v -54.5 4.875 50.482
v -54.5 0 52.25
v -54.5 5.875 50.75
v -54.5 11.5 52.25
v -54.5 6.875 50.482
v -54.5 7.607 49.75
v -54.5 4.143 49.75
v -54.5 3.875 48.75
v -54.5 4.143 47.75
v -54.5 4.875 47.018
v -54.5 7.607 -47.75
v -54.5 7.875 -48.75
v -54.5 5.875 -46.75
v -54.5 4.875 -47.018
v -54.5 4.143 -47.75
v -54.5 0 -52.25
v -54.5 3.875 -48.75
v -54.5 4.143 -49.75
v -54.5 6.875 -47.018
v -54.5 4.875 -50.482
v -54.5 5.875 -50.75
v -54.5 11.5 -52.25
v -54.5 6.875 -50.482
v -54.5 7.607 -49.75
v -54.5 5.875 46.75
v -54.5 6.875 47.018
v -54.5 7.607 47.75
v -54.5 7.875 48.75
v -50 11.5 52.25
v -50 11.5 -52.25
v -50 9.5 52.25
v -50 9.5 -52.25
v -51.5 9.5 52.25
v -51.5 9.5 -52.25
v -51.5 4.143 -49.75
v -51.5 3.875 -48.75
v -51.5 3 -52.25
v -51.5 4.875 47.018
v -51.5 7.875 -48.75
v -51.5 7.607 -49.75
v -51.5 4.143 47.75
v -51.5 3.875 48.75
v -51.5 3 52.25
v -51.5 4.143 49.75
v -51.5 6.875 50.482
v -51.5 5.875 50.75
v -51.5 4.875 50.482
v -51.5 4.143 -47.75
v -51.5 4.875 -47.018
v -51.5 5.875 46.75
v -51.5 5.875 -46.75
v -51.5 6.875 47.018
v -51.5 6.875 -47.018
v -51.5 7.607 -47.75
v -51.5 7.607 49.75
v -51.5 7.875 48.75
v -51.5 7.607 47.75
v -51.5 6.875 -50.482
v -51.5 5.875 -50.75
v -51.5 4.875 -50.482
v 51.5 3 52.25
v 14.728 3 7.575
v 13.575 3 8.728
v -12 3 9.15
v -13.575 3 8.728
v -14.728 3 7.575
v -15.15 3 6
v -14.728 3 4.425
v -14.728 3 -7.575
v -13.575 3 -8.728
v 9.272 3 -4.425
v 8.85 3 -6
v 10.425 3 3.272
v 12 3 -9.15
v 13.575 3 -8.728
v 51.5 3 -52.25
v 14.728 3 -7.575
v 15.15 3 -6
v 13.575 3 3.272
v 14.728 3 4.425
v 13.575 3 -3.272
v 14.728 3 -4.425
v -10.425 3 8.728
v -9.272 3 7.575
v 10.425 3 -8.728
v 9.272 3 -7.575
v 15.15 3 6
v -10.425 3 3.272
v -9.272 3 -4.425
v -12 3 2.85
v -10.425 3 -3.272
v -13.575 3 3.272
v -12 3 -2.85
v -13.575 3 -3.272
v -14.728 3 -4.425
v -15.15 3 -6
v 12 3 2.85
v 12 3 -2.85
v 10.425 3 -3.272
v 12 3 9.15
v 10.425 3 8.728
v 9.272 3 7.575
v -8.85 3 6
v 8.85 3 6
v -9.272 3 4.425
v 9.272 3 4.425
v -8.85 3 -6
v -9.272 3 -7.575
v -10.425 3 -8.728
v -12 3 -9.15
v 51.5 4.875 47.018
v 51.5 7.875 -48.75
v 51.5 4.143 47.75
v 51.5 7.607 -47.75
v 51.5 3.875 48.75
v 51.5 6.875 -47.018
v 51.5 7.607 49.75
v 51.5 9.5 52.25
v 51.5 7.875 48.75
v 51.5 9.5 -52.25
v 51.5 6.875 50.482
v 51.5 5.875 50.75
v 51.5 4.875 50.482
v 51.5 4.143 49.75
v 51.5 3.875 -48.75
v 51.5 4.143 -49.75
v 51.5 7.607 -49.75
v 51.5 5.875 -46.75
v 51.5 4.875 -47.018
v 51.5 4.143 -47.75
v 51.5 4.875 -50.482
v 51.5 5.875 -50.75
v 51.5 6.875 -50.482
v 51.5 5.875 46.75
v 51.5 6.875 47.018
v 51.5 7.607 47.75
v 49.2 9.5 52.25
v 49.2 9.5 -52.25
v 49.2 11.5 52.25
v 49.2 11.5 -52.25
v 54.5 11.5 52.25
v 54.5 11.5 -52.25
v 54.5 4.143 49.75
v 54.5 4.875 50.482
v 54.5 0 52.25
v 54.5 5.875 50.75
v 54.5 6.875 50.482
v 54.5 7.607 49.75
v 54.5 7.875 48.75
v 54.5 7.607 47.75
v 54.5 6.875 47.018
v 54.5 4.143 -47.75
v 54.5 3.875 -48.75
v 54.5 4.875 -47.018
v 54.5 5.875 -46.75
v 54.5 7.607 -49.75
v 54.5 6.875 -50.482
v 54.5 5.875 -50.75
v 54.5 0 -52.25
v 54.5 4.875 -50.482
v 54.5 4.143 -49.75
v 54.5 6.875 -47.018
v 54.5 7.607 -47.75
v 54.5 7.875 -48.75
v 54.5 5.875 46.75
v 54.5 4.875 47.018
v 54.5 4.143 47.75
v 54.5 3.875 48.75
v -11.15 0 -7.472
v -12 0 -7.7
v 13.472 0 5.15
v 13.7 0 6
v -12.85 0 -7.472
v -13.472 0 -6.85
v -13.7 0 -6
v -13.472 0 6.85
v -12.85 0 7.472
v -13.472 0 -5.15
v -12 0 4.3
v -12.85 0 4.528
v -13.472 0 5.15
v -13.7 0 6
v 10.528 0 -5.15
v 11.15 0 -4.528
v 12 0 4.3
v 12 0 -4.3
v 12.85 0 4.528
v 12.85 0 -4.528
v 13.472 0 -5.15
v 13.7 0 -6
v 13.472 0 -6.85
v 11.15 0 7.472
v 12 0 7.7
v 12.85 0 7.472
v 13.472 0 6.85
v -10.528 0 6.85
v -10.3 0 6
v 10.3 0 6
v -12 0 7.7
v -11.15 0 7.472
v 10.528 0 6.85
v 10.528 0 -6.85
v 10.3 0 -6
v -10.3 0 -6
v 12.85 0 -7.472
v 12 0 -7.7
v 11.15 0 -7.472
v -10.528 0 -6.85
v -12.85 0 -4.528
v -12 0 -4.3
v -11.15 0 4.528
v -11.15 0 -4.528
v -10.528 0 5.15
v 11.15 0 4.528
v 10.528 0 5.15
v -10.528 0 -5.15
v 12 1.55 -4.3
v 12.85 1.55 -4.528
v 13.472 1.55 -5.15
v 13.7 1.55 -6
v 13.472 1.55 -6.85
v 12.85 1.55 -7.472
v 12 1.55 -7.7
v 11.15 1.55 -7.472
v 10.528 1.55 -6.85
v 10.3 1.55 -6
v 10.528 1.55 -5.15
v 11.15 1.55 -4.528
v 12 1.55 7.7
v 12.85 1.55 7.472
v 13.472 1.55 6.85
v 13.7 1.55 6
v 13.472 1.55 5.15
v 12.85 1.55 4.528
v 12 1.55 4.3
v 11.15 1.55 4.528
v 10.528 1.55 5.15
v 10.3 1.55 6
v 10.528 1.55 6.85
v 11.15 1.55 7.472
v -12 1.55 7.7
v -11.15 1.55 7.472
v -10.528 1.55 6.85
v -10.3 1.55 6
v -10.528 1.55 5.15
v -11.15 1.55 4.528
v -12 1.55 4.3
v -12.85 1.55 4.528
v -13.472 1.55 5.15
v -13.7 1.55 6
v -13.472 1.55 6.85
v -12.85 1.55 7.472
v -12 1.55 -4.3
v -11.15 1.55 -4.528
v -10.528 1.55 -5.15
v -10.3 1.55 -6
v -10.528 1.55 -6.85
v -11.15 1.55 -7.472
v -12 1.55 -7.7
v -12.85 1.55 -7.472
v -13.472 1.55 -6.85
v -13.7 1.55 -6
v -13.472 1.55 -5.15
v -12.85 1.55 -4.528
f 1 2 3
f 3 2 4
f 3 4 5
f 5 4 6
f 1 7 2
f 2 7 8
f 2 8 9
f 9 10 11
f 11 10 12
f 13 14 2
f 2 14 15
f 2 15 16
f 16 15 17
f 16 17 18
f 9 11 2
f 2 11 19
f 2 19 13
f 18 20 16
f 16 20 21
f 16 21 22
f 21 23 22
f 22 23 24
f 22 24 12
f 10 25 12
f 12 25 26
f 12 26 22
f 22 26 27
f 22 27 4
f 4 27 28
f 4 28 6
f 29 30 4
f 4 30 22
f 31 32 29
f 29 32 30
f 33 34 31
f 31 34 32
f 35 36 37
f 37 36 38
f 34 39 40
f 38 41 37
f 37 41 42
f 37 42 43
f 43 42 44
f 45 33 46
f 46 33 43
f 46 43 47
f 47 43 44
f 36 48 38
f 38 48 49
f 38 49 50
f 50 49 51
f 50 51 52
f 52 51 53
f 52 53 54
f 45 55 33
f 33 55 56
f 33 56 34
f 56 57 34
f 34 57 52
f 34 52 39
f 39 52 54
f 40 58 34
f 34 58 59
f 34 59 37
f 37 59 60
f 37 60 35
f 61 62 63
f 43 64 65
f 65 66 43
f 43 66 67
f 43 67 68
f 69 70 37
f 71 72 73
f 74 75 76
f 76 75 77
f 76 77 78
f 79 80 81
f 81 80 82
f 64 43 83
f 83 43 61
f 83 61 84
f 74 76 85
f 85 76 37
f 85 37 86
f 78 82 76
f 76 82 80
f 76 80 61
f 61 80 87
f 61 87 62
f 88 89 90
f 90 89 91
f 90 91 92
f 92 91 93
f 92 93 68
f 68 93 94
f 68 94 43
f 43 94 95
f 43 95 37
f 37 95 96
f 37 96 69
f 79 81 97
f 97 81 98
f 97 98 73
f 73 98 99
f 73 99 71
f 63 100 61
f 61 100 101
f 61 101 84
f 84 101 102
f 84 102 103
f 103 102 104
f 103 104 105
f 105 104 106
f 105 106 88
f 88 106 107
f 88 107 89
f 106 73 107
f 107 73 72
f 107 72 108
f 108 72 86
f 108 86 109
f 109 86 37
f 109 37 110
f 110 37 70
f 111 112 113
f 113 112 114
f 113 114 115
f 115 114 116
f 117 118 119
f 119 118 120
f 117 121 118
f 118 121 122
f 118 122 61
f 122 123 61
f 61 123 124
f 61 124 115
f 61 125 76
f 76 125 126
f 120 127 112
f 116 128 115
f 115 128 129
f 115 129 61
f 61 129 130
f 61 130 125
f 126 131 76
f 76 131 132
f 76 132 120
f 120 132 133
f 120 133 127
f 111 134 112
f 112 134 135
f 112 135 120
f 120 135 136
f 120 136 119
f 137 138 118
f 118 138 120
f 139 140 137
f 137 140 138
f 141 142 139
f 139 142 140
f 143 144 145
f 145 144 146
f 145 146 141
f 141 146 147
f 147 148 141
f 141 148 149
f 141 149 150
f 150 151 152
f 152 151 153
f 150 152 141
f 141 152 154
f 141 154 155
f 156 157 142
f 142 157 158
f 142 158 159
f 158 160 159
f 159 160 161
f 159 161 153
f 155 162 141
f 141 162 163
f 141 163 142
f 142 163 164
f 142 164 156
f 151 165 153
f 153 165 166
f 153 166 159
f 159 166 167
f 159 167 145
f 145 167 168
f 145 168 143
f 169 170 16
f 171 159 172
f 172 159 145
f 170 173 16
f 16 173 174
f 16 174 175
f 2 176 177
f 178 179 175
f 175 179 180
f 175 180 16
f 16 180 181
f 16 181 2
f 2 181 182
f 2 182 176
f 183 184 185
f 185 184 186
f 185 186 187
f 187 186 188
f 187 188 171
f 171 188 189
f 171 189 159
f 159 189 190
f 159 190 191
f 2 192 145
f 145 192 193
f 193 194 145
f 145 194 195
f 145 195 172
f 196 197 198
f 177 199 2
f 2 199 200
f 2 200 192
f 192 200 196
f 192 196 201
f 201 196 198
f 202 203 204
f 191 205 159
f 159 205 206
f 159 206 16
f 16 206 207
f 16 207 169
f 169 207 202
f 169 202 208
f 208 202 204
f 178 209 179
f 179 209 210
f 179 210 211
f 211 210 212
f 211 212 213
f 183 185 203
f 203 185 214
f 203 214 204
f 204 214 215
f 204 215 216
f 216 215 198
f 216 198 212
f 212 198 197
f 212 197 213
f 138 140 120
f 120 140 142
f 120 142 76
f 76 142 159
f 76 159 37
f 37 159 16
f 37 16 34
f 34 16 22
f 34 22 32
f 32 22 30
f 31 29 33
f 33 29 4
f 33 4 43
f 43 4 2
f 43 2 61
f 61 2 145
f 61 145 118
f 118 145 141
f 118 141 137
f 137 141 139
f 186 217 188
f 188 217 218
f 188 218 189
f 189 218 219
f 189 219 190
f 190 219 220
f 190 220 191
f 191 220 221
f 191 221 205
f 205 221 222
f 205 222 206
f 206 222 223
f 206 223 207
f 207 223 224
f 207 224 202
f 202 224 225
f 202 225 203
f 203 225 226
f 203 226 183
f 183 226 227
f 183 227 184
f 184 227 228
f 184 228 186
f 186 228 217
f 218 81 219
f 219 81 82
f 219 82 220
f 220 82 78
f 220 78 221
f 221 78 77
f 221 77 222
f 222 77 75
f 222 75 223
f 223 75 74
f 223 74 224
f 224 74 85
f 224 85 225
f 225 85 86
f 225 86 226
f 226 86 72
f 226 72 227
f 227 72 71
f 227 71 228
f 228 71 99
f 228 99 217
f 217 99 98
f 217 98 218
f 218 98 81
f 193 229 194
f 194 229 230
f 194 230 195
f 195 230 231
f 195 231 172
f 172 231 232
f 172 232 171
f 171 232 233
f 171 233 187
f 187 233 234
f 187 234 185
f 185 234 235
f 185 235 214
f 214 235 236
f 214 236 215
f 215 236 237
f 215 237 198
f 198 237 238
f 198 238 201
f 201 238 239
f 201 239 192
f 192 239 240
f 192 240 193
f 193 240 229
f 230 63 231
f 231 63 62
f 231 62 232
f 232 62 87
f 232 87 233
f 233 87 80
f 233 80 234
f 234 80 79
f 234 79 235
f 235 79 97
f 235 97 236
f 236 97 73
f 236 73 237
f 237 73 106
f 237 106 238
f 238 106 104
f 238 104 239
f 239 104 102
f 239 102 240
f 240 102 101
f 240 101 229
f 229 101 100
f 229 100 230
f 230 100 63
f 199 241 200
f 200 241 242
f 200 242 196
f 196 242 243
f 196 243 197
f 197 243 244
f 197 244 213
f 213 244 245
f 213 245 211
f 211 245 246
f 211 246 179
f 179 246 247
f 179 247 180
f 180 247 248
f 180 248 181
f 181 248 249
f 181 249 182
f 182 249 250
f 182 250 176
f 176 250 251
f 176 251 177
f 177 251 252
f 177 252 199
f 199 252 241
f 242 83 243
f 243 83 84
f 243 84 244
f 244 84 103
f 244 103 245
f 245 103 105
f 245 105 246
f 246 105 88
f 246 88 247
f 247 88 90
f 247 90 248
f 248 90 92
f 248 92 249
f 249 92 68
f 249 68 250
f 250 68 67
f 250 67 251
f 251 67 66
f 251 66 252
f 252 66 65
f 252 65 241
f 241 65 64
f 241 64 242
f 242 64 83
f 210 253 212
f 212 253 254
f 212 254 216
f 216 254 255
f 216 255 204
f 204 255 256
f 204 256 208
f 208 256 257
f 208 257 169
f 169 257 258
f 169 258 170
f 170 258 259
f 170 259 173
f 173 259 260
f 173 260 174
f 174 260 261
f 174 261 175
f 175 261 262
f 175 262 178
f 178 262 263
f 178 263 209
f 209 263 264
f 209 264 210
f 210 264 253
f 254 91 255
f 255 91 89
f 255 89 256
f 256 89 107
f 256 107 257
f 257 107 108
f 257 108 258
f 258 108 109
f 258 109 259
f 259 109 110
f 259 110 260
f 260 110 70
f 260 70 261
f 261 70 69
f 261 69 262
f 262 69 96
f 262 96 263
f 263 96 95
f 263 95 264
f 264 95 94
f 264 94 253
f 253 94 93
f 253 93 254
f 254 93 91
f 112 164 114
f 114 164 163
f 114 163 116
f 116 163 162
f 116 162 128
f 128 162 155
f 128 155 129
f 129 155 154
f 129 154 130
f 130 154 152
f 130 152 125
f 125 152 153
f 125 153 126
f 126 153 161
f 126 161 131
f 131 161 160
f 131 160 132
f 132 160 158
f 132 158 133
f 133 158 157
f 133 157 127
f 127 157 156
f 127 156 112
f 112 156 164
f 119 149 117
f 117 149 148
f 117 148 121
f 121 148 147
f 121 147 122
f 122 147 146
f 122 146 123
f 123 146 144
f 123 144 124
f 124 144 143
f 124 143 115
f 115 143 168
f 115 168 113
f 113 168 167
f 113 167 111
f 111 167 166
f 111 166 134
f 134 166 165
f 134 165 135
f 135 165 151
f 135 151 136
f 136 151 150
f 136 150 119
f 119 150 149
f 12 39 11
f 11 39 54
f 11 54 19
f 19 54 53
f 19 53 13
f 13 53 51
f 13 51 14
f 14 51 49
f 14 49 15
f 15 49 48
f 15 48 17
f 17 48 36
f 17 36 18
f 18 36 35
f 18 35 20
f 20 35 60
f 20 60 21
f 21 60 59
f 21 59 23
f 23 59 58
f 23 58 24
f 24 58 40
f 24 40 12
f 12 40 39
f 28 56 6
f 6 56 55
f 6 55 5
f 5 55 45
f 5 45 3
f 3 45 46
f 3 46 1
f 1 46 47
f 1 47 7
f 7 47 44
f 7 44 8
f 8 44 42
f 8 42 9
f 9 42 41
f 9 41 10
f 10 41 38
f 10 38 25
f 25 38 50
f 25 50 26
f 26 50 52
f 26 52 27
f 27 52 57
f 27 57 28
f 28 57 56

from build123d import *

# Parameters (mm, degrees)
BOSS_EXTRUDE1_DEPTH                            = 52.25
BOSS_EXTRUDE1_DEPTH_BACK                       = 52.25
CSK_FOR_M3_FLAT_HEAD_MACHINE_SCREW1_AT_2_COUNT = 2
CSK_FOR_M3_FLAT_HEAD_MACHINE_SCREW1_AT_2_PITCH = 12
CSK_FOR_M3_FLAT_HEAD_MACHINE_SCREW1_AT_3_COUNT = 2
CSK_FOR_M3_FLAT_HEAD_MACHINE_SCREW1_AT_3_PITCH = 26.83281573
CSK_FOR_M3_FLAT_HEAD_MACHINE_SCREW1_AT_4_COUNT = 2
CSK_FOR_M3_FLAT_HEAD_MACHINE_SCREW1_AT_4_PITCH = 24
SKETCH5_R                                      = 2
CUT_EXTRUDE1_DEPTH                             = 122.422042892


with BuildPart() as part:
    # Sketch1 → Boss-Extrude1 (new, two sides: drawn at the far end of the back side and taken through both)
    with BuildSketch(Plane.XY.offset(-BOSS_EXTRUDE1_DEPTH_BACK)):
        Polygon((-50, 11.5), (-50, 9.5), (-51.5, 9.5), (-51.5, 3), (51.5, 3), (51.5, 9.5), (49.2, 9.5), (49.2, 11.5), (54.5, 11.5), (54.5, 0), (-54.5, 0), (-54.5, 11.5), align=None)
    extrude(amount=BOSS_EXTRUDE1_DEPTH + BOSS_EXTRUDE1_DEPTH_BACK)

    # Sketch4 → CSK for M3 Flat Head Machine Screw1 (revolve, cut)
    with BuildSketch(Plane(origin=(-12, 3, -6), x_dir=(0, 0, 1), z_dir=(1, 0, 0))):
        Polygon((0, 0), (0, 3), (1.7, 3), (1.7, 1.45), (3.15, 0), align=None)
    csk_for_m3_flat_head_machine_screw1 = revolve(axis=Axis((-12, 9.35, -6), (0, -1, 0)), mode=Mode.SUBTRACT)

    # CSK for M3 Flat Head Machine Screw1 at 2: CSK for M3 Flat Head Machine Screw1 ×2
    with Locations(*[(0, 0, i * CSK_FOR_M3_FLAT_HEAD_MACHINE_SCREW1_AT_2_PITCH) for i in range(1, CSK_FOR_M3_FLAT_HEAD_MACHINE_SCREW1_AT_2_COUNT)]):
        add(csk_for_m3_flat_head_machine_screw1, mode=Mode.SUBTRACT)

    # CSK for M3 Flat Head Machine Screw1 at 3: CSK for M3 Flat Head Machine Screw1 ×2
    with Locations(*[Vector(0.894427190999916, 0, 0.4472135954999579) * (i * CSK_FOR_M3_FLAT_HEAD_MACHINE_SCREW1_AT_3_PITCH) for i in range(1, CSK_FOR_M3_FLAT_HEAD_MACHINE_SCREW1_AT_3_COUNT)]):
        add(csk_for_m3_flat_head_machine_screw1, mode=Mode.SUBTRACT)

    # CSK for M3 Flat Head Machine Screw1 at 4: CSK for M3 Flat Head Machine Screw1 ×2
    with Locations(*[(i * CSK_FOR_M3_FLAT_HEAD_MACHINE_SCREW1_AT_4_PITCH, 0, 0) for i in range(1, CSK_FOR_M3_FLAT_HEAD_MACHINE_SCREW1_AT_4_COUNT)]):
        add(csk_for_m3_flat_head_machine_screw1, mode=Mode.SUBTRACT)

    # Sketch5 → Cut-Extrude1 (cut, through all)
    with BuildSketch(Plane(origin=(54.5, 0, 0), x_dir=(0, 0, -1), z_dir=(1, 0, 0))):
        with Locations((-48.75, 5.875)):
            Circle(SKETCH5_R)
        with Locations((48.75, 5.875)):
            Circle(SKETCH5_R)
    extrude(amount=-CUT_EXTRUDE1_DEPTH, mode=Mode.SUBTRACT)


solid = part.part
